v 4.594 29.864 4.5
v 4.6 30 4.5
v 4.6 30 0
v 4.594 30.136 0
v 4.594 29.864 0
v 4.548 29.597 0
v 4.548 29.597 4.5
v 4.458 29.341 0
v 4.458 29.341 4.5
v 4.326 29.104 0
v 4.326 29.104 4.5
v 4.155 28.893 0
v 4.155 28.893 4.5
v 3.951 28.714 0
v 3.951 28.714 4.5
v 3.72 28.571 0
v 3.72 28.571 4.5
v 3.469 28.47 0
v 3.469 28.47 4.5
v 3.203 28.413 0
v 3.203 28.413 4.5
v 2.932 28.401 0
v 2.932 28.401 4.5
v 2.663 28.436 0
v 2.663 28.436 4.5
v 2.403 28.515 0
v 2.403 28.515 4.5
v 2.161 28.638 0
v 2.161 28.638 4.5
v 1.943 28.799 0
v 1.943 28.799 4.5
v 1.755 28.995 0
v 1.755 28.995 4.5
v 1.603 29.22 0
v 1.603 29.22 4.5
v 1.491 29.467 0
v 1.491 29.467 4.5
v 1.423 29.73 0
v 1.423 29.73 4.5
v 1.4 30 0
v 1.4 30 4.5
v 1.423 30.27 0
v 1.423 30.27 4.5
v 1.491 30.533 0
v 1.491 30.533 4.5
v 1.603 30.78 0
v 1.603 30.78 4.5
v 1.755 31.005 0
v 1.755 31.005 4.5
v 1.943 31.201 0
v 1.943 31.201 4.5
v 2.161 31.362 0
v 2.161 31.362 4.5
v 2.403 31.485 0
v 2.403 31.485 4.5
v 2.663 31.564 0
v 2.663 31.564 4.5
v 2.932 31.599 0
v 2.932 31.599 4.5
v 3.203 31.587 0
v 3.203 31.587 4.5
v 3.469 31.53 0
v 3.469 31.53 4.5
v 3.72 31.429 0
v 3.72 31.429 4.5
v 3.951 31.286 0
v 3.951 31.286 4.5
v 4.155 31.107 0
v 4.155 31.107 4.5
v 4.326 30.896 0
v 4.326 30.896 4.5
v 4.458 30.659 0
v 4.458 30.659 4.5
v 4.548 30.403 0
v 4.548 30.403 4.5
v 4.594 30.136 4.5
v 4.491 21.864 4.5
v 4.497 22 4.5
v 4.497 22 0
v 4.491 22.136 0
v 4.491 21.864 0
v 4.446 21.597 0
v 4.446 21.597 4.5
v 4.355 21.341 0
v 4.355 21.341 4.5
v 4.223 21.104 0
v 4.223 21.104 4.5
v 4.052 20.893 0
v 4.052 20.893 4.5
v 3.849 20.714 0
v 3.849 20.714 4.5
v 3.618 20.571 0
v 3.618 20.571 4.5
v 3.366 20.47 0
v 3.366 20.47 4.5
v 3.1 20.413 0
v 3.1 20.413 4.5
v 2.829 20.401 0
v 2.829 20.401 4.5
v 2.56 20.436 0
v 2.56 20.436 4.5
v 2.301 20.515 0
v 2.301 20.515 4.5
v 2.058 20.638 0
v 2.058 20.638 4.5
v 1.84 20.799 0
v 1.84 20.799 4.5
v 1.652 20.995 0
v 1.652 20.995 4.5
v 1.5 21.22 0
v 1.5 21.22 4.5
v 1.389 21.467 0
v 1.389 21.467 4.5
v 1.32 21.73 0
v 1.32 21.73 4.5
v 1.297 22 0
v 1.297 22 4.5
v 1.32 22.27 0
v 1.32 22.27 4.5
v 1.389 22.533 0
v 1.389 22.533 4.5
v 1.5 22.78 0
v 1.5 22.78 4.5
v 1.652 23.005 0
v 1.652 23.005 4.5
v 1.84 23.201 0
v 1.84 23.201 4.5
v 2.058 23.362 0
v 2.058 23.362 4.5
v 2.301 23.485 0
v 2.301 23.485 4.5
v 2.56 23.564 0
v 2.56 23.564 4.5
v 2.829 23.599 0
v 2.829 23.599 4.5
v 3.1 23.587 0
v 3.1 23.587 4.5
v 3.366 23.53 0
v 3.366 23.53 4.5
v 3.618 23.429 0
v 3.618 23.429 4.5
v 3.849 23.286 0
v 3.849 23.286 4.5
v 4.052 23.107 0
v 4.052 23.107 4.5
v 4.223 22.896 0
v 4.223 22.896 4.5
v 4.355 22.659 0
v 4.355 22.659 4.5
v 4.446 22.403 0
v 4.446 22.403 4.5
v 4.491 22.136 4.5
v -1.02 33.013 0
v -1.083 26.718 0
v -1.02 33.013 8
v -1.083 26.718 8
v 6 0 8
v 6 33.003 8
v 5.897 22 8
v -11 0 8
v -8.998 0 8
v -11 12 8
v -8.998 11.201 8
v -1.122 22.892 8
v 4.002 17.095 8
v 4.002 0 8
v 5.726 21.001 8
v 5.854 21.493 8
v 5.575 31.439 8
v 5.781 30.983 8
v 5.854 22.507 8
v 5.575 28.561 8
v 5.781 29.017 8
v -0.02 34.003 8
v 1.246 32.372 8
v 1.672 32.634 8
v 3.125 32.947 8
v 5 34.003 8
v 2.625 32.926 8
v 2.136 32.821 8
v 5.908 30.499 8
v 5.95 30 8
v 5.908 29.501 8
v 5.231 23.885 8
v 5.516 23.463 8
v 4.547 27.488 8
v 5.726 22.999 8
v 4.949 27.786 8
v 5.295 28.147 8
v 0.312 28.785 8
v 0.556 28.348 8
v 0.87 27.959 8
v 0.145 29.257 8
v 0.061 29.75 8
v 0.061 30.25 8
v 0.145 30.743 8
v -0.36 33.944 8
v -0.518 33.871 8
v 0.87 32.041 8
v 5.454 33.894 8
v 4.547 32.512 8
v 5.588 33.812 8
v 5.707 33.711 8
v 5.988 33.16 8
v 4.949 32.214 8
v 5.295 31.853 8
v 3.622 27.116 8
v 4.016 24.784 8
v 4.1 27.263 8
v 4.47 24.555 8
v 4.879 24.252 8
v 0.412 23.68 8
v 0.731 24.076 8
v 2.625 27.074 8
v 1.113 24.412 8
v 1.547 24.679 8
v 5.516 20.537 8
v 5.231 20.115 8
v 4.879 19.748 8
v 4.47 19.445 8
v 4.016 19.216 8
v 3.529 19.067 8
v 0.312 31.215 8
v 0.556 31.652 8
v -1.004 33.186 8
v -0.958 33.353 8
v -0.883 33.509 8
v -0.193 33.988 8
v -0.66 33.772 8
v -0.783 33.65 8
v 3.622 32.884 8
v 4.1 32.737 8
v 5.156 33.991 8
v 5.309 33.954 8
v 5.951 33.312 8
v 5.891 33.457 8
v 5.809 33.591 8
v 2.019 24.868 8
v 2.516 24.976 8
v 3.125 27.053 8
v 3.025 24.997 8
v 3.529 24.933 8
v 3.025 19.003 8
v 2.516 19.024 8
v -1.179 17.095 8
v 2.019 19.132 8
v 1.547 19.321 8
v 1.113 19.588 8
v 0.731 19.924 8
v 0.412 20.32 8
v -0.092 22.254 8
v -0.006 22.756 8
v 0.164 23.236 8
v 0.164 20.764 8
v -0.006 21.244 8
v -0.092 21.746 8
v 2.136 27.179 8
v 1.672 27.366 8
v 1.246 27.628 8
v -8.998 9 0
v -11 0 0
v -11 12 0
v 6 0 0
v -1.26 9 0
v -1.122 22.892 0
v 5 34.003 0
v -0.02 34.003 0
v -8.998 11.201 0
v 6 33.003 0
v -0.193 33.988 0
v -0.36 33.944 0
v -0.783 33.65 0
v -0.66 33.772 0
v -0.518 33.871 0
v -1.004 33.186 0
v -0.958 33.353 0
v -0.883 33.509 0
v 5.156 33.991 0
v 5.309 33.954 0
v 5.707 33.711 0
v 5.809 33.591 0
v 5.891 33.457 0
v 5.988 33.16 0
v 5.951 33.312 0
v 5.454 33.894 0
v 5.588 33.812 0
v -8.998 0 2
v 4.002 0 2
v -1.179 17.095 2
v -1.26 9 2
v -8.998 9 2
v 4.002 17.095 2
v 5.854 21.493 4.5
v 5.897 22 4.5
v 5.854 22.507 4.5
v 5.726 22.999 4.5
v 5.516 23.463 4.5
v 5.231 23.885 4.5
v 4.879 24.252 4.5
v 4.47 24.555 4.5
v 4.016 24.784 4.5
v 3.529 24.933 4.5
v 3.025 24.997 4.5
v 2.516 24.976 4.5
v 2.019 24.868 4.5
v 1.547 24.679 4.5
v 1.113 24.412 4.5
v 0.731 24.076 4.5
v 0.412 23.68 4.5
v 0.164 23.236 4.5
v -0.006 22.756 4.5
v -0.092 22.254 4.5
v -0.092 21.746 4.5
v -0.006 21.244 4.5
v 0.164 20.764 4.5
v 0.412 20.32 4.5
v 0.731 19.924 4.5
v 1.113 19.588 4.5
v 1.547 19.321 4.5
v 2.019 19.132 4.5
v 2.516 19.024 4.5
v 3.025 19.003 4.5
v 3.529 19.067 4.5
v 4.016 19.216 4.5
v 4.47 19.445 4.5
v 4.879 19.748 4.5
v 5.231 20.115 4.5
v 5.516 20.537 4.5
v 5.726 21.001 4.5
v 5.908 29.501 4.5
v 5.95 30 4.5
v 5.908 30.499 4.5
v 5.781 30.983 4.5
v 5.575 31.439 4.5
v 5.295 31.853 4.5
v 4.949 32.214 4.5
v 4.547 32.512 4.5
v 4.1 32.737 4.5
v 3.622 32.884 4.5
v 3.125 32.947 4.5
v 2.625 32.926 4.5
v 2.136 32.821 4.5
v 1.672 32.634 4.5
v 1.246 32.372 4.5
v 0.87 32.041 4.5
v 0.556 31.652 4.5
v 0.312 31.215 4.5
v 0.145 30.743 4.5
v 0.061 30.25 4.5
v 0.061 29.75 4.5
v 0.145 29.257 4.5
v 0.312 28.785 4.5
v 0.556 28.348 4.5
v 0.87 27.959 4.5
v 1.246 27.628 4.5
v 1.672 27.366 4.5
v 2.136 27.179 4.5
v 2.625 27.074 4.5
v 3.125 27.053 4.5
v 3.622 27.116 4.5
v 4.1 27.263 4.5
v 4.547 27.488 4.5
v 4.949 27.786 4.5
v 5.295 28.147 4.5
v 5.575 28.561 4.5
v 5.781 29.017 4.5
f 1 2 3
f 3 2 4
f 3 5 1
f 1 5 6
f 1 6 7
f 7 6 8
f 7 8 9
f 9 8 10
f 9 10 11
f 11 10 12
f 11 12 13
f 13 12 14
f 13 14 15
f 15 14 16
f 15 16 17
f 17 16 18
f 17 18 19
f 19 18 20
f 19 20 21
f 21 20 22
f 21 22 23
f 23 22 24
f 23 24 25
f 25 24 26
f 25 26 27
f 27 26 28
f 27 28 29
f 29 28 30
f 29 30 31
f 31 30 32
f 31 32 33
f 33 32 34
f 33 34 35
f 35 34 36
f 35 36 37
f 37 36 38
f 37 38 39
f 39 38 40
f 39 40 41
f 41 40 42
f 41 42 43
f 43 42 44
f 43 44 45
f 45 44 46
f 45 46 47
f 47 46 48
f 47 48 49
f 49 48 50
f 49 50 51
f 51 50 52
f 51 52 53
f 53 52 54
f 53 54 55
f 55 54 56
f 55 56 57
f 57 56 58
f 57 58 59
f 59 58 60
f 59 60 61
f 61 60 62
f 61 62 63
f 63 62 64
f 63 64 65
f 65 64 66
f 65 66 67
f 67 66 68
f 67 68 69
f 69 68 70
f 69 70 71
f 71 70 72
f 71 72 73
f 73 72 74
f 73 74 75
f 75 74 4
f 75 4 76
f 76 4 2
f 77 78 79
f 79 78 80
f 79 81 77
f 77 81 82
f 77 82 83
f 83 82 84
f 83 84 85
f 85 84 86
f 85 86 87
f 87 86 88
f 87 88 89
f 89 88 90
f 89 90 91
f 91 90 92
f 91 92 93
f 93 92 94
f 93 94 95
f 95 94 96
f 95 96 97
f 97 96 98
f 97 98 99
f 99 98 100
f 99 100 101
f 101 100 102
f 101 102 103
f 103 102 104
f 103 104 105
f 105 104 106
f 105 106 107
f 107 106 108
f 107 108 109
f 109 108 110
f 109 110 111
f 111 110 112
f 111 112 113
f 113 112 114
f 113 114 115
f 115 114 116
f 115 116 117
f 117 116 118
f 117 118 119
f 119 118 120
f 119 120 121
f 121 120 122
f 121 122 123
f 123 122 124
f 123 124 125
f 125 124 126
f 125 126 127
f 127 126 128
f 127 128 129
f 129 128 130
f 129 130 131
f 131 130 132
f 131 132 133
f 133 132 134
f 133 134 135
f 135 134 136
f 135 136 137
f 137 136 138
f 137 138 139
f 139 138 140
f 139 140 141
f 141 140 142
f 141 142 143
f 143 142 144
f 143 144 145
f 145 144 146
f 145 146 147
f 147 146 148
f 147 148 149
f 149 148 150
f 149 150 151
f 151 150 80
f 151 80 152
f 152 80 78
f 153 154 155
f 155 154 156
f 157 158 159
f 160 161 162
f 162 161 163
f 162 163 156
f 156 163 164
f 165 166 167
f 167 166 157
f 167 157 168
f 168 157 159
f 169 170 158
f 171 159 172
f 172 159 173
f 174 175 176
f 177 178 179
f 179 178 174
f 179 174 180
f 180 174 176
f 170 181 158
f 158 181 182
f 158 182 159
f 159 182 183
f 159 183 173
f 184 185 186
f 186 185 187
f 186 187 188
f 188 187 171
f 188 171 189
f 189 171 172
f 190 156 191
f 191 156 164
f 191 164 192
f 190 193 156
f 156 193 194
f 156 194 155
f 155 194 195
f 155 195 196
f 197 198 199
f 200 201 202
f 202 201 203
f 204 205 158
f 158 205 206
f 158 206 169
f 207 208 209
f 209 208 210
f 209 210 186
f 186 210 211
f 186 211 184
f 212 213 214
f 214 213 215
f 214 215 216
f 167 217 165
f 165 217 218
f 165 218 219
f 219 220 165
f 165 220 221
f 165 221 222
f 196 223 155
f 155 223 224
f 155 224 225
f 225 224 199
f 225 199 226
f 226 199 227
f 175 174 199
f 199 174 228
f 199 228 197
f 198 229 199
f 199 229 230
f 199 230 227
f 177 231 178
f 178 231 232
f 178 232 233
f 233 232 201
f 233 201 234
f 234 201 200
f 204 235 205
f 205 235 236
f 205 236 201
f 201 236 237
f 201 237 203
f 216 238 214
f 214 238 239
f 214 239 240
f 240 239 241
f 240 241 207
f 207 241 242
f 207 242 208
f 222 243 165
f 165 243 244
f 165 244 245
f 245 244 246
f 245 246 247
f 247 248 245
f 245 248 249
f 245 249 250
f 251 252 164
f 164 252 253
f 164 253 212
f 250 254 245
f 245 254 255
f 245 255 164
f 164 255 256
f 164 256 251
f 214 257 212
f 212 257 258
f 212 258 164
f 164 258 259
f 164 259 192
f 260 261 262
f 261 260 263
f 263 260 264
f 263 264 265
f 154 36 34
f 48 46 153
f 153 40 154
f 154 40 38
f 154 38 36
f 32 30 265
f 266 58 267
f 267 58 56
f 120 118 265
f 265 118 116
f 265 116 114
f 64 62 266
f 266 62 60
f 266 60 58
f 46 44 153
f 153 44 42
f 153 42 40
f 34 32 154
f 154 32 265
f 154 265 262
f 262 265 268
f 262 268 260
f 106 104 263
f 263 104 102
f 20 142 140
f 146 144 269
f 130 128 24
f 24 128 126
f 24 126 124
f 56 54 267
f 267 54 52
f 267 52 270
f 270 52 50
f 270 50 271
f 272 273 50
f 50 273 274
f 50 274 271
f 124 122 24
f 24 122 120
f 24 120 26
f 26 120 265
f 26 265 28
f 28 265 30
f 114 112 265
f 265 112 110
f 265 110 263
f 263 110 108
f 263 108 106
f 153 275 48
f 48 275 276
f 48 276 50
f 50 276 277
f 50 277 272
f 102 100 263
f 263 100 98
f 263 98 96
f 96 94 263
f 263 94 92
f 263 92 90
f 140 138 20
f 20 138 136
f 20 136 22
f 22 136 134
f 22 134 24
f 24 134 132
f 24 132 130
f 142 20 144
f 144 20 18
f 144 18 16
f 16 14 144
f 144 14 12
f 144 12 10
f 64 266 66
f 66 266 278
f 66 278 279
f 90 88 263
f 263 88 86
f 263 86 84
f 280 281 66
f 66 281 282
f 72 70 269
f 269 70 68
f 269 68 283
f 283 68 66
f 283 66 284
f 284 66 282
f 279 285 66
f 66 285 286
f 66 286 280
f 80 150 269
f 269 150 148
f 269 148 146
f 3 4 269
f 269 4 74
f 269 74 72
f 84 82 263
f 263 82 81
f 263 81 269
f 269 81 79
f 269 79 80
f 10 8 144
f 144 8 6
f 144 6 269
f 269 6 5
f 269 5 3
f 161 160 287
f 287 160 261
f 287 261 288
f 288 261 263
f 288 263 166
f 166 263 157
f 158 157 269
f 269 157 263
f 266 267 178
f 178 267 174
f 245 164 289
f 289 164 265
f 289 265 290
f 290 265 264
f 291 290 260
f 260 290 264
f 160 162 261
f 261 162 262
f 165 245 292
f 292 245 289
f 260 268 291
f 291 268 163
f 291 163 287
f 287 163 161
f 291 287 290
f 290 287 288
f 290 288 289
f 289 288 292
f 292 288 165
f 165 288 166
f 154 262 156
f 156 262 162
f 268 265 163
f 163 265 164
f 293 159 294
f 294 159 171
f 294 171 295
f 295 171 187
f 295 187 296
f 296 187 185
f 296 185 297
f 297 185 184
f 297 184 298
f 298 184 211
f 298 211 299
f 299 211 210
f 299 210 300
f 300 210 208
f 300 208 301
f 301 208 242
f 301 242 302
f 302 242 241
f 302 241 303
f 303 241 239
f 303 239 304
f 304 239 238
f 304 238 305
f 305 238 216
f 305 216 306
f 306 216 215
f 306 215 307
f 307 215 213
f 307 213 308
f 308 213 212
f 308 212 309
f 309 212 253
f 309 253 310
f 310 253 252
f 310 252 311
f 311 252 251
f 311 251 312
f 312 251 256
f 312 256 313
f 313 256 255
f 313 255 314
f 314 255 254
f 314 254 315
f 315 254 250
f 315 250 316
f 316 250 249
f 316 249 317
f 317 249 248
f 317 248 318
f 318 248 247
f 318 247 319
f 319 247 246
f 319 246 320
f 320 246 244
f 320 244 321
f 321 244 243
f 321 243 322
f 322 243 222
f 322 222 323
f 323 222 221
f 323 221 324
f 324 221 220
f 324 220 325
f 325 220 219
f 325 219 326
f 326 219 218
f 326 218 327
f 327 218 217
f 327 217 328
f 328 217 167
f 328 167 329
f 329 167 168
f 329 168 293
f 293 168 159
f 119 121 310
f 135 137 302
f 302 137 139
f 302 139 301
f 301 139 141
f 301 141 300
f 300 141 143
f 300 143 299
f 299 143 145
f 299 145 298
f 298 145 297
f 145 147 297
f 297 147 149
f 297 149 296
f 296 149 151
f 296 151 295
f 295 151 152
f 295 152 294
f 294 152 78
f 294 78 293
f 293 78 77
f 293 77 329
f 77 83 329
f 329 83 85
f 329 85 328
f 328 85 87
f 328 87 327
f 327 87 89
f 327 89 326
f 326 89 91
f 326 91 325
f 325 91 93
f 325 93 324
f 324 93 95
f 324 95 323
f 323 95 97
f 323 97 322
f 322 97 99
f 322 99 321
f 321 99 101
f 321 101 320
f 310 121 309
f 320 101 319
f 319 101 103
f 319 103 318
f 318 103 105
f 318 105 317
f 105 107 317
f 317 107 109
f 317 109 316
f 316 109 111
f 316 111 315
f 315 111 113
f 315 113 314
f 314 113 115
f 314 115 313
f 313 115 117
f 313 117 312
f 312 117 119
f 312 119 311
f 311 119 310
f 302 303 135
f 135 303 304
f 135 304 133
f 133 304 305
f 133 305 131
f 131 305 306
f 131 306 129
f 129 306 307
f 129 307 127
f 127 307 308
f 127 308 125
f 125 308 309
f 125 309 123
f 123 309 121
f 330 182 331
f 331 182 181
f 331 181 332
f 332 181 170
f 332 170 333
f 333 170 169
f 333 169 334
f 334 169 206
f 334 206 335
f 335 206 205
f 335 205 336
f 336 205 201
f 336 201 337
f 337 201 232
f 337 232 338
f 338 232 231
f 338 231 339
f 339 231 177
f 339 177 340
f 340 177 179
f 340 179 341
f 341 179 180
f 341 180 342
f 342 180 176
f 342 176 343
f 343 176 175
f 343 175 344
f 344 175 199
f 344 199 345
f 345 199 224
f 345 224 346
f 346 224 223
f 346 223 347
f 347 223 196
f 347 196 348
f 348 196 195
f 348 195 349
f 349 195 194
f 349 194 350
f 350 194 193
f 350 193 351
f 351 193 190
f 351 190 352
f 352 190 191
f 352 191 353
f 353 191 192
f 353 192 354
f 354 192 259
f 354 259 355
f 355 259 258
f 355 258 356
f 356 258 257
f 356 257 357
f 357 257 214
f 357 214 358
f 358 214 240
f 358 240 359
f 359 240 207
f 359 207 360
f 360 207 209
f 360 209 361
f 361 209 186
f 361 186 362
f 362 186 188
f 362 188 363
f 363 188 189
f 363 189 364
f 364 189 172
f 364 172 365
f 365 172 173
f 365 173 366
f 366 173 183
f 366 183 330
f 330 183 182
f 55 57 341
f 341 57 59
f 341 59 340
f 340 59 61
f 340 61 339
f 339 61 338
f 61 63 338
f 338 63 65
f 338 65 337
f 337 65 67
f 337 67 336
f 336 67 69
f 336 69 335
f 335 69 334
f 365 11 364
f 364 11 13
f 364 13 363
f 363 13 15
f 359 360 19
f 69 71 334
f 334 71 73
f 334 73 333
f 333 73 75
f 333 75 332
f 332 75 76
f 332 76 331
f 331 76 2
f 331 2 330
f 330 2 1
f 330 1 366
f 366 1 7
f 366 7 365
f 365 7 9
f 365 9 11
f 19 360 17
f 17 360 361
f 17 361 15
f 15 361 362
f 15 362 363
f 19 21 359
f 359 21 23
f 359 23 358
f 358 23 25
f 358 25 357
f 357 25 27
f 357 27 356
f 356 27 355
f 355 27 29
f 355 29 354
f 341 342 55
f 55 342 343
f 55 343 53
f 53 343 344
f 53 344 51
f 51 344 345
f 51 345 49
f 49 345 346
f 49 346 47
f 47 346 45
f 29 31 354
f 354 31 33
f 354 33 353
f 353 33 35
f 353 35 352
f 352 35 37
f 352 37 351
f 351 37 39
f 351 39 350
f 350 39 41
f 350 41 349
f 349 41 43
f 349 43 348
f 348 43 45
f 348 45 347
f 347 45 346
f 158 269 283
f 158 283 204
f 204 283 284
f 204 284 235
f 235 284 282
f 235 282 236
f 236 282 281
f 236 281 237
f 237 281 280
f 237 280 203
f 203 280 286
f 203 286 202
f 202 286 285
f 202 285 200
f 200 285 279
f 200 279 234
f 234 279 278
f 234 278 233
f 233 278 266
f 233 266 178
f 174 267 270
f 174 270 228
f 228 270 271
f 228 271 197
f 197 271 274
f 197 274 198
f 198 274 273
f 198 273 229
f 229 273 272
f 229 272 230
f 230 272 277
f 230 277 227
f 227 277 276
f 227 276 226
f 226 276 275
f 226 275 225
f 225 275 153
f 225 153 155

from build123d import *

# Parameters (mm, degrees)
SKETCH_1_R          = 1.6
EXTRUDE_1_DEPTH     = 8
SKETCH_2_W          = 13
SKETCH_2_H          = 17.095287854
CUT_EXTRUDE_1_DEPTH = 6
EXTRUDE_2_DEPTH     = 8
SKETCH_4_R          = 3
SKETCH_4_R_2        = 2.95
CUT_EXTRUDE_2_DEPTH = 3.5
FILLET_1_R          = 1


with BuildPart() as part:
    # 草图1 → 凸台-拉伸1 (new body)
    with BuildSketch(Plane.XY):
        Polygon((0, 0), (6, 0), (6, 24), (6, 34.003436918), (0, 34.003436918), (-1.010556426, 34.003436918), (-1.260244026, 9), (-11, 9), (-11, 0), align=None)
        with Locations((2.89726379, 22)):
            Circle(SKETCH_1_R, mode=Mode.SUBTRACT)
        with Locations((3, 30)):
            Circle(SKETCH_1_R, mode=Mode.SUBTRACT)
    extrude(amount=EXTRUDE_1_DEPTH)

    # 草图2 → 切除-拉伸1 (cut)
    with BuildSketch(Plane.XY.offset(8)):
        with Locations((-2.498171462, 8.547643927)):
            Rectangle(SKETCH_2_W, SKETCH_2_H)
    extrude(amount=-CUT_EXTRUDE_1_DEPTH, mode=Mode.SUBTRACT)

    # 草图3 → 凸台-拉伸2 (add)
    with BuildSketch(Plane.XY.offset(8)):
        Polygon((-11, 12), (-1.083308234, 26.718152327), (-1.121520842, 22.891584471), (-8.998171462, 11.201219742), (-8.998171462, 9), (-11, 9), align=None)
    extrude(amount=-EXTRUDE_2_DEPTH)

    # 草图4 → 切除-拉伸2 (cut)
    with BuildSketch(Plane.XY.offset(8)):
        with Locations((2.89726379, 22)):
            Circle(SKETCH_4_R)
        with Locations((3, 30)):
            Circle(SKETCH_4_R_2)
    extrude(amount=-CUT_EXTRUDE_2_DEPTH, mode=Mode.SUBTRACT)

    # 圆角1
    fillet_1_edges = [part.edges().sort_by_distance(p)[0] for p in [
        (-1.010556426, 34.003436918, 4),
        (6, 34.003436918, 4),
    ]]
    fillet(fillet_1_edges, radius=FILLET_1_R)


solid = part.part
